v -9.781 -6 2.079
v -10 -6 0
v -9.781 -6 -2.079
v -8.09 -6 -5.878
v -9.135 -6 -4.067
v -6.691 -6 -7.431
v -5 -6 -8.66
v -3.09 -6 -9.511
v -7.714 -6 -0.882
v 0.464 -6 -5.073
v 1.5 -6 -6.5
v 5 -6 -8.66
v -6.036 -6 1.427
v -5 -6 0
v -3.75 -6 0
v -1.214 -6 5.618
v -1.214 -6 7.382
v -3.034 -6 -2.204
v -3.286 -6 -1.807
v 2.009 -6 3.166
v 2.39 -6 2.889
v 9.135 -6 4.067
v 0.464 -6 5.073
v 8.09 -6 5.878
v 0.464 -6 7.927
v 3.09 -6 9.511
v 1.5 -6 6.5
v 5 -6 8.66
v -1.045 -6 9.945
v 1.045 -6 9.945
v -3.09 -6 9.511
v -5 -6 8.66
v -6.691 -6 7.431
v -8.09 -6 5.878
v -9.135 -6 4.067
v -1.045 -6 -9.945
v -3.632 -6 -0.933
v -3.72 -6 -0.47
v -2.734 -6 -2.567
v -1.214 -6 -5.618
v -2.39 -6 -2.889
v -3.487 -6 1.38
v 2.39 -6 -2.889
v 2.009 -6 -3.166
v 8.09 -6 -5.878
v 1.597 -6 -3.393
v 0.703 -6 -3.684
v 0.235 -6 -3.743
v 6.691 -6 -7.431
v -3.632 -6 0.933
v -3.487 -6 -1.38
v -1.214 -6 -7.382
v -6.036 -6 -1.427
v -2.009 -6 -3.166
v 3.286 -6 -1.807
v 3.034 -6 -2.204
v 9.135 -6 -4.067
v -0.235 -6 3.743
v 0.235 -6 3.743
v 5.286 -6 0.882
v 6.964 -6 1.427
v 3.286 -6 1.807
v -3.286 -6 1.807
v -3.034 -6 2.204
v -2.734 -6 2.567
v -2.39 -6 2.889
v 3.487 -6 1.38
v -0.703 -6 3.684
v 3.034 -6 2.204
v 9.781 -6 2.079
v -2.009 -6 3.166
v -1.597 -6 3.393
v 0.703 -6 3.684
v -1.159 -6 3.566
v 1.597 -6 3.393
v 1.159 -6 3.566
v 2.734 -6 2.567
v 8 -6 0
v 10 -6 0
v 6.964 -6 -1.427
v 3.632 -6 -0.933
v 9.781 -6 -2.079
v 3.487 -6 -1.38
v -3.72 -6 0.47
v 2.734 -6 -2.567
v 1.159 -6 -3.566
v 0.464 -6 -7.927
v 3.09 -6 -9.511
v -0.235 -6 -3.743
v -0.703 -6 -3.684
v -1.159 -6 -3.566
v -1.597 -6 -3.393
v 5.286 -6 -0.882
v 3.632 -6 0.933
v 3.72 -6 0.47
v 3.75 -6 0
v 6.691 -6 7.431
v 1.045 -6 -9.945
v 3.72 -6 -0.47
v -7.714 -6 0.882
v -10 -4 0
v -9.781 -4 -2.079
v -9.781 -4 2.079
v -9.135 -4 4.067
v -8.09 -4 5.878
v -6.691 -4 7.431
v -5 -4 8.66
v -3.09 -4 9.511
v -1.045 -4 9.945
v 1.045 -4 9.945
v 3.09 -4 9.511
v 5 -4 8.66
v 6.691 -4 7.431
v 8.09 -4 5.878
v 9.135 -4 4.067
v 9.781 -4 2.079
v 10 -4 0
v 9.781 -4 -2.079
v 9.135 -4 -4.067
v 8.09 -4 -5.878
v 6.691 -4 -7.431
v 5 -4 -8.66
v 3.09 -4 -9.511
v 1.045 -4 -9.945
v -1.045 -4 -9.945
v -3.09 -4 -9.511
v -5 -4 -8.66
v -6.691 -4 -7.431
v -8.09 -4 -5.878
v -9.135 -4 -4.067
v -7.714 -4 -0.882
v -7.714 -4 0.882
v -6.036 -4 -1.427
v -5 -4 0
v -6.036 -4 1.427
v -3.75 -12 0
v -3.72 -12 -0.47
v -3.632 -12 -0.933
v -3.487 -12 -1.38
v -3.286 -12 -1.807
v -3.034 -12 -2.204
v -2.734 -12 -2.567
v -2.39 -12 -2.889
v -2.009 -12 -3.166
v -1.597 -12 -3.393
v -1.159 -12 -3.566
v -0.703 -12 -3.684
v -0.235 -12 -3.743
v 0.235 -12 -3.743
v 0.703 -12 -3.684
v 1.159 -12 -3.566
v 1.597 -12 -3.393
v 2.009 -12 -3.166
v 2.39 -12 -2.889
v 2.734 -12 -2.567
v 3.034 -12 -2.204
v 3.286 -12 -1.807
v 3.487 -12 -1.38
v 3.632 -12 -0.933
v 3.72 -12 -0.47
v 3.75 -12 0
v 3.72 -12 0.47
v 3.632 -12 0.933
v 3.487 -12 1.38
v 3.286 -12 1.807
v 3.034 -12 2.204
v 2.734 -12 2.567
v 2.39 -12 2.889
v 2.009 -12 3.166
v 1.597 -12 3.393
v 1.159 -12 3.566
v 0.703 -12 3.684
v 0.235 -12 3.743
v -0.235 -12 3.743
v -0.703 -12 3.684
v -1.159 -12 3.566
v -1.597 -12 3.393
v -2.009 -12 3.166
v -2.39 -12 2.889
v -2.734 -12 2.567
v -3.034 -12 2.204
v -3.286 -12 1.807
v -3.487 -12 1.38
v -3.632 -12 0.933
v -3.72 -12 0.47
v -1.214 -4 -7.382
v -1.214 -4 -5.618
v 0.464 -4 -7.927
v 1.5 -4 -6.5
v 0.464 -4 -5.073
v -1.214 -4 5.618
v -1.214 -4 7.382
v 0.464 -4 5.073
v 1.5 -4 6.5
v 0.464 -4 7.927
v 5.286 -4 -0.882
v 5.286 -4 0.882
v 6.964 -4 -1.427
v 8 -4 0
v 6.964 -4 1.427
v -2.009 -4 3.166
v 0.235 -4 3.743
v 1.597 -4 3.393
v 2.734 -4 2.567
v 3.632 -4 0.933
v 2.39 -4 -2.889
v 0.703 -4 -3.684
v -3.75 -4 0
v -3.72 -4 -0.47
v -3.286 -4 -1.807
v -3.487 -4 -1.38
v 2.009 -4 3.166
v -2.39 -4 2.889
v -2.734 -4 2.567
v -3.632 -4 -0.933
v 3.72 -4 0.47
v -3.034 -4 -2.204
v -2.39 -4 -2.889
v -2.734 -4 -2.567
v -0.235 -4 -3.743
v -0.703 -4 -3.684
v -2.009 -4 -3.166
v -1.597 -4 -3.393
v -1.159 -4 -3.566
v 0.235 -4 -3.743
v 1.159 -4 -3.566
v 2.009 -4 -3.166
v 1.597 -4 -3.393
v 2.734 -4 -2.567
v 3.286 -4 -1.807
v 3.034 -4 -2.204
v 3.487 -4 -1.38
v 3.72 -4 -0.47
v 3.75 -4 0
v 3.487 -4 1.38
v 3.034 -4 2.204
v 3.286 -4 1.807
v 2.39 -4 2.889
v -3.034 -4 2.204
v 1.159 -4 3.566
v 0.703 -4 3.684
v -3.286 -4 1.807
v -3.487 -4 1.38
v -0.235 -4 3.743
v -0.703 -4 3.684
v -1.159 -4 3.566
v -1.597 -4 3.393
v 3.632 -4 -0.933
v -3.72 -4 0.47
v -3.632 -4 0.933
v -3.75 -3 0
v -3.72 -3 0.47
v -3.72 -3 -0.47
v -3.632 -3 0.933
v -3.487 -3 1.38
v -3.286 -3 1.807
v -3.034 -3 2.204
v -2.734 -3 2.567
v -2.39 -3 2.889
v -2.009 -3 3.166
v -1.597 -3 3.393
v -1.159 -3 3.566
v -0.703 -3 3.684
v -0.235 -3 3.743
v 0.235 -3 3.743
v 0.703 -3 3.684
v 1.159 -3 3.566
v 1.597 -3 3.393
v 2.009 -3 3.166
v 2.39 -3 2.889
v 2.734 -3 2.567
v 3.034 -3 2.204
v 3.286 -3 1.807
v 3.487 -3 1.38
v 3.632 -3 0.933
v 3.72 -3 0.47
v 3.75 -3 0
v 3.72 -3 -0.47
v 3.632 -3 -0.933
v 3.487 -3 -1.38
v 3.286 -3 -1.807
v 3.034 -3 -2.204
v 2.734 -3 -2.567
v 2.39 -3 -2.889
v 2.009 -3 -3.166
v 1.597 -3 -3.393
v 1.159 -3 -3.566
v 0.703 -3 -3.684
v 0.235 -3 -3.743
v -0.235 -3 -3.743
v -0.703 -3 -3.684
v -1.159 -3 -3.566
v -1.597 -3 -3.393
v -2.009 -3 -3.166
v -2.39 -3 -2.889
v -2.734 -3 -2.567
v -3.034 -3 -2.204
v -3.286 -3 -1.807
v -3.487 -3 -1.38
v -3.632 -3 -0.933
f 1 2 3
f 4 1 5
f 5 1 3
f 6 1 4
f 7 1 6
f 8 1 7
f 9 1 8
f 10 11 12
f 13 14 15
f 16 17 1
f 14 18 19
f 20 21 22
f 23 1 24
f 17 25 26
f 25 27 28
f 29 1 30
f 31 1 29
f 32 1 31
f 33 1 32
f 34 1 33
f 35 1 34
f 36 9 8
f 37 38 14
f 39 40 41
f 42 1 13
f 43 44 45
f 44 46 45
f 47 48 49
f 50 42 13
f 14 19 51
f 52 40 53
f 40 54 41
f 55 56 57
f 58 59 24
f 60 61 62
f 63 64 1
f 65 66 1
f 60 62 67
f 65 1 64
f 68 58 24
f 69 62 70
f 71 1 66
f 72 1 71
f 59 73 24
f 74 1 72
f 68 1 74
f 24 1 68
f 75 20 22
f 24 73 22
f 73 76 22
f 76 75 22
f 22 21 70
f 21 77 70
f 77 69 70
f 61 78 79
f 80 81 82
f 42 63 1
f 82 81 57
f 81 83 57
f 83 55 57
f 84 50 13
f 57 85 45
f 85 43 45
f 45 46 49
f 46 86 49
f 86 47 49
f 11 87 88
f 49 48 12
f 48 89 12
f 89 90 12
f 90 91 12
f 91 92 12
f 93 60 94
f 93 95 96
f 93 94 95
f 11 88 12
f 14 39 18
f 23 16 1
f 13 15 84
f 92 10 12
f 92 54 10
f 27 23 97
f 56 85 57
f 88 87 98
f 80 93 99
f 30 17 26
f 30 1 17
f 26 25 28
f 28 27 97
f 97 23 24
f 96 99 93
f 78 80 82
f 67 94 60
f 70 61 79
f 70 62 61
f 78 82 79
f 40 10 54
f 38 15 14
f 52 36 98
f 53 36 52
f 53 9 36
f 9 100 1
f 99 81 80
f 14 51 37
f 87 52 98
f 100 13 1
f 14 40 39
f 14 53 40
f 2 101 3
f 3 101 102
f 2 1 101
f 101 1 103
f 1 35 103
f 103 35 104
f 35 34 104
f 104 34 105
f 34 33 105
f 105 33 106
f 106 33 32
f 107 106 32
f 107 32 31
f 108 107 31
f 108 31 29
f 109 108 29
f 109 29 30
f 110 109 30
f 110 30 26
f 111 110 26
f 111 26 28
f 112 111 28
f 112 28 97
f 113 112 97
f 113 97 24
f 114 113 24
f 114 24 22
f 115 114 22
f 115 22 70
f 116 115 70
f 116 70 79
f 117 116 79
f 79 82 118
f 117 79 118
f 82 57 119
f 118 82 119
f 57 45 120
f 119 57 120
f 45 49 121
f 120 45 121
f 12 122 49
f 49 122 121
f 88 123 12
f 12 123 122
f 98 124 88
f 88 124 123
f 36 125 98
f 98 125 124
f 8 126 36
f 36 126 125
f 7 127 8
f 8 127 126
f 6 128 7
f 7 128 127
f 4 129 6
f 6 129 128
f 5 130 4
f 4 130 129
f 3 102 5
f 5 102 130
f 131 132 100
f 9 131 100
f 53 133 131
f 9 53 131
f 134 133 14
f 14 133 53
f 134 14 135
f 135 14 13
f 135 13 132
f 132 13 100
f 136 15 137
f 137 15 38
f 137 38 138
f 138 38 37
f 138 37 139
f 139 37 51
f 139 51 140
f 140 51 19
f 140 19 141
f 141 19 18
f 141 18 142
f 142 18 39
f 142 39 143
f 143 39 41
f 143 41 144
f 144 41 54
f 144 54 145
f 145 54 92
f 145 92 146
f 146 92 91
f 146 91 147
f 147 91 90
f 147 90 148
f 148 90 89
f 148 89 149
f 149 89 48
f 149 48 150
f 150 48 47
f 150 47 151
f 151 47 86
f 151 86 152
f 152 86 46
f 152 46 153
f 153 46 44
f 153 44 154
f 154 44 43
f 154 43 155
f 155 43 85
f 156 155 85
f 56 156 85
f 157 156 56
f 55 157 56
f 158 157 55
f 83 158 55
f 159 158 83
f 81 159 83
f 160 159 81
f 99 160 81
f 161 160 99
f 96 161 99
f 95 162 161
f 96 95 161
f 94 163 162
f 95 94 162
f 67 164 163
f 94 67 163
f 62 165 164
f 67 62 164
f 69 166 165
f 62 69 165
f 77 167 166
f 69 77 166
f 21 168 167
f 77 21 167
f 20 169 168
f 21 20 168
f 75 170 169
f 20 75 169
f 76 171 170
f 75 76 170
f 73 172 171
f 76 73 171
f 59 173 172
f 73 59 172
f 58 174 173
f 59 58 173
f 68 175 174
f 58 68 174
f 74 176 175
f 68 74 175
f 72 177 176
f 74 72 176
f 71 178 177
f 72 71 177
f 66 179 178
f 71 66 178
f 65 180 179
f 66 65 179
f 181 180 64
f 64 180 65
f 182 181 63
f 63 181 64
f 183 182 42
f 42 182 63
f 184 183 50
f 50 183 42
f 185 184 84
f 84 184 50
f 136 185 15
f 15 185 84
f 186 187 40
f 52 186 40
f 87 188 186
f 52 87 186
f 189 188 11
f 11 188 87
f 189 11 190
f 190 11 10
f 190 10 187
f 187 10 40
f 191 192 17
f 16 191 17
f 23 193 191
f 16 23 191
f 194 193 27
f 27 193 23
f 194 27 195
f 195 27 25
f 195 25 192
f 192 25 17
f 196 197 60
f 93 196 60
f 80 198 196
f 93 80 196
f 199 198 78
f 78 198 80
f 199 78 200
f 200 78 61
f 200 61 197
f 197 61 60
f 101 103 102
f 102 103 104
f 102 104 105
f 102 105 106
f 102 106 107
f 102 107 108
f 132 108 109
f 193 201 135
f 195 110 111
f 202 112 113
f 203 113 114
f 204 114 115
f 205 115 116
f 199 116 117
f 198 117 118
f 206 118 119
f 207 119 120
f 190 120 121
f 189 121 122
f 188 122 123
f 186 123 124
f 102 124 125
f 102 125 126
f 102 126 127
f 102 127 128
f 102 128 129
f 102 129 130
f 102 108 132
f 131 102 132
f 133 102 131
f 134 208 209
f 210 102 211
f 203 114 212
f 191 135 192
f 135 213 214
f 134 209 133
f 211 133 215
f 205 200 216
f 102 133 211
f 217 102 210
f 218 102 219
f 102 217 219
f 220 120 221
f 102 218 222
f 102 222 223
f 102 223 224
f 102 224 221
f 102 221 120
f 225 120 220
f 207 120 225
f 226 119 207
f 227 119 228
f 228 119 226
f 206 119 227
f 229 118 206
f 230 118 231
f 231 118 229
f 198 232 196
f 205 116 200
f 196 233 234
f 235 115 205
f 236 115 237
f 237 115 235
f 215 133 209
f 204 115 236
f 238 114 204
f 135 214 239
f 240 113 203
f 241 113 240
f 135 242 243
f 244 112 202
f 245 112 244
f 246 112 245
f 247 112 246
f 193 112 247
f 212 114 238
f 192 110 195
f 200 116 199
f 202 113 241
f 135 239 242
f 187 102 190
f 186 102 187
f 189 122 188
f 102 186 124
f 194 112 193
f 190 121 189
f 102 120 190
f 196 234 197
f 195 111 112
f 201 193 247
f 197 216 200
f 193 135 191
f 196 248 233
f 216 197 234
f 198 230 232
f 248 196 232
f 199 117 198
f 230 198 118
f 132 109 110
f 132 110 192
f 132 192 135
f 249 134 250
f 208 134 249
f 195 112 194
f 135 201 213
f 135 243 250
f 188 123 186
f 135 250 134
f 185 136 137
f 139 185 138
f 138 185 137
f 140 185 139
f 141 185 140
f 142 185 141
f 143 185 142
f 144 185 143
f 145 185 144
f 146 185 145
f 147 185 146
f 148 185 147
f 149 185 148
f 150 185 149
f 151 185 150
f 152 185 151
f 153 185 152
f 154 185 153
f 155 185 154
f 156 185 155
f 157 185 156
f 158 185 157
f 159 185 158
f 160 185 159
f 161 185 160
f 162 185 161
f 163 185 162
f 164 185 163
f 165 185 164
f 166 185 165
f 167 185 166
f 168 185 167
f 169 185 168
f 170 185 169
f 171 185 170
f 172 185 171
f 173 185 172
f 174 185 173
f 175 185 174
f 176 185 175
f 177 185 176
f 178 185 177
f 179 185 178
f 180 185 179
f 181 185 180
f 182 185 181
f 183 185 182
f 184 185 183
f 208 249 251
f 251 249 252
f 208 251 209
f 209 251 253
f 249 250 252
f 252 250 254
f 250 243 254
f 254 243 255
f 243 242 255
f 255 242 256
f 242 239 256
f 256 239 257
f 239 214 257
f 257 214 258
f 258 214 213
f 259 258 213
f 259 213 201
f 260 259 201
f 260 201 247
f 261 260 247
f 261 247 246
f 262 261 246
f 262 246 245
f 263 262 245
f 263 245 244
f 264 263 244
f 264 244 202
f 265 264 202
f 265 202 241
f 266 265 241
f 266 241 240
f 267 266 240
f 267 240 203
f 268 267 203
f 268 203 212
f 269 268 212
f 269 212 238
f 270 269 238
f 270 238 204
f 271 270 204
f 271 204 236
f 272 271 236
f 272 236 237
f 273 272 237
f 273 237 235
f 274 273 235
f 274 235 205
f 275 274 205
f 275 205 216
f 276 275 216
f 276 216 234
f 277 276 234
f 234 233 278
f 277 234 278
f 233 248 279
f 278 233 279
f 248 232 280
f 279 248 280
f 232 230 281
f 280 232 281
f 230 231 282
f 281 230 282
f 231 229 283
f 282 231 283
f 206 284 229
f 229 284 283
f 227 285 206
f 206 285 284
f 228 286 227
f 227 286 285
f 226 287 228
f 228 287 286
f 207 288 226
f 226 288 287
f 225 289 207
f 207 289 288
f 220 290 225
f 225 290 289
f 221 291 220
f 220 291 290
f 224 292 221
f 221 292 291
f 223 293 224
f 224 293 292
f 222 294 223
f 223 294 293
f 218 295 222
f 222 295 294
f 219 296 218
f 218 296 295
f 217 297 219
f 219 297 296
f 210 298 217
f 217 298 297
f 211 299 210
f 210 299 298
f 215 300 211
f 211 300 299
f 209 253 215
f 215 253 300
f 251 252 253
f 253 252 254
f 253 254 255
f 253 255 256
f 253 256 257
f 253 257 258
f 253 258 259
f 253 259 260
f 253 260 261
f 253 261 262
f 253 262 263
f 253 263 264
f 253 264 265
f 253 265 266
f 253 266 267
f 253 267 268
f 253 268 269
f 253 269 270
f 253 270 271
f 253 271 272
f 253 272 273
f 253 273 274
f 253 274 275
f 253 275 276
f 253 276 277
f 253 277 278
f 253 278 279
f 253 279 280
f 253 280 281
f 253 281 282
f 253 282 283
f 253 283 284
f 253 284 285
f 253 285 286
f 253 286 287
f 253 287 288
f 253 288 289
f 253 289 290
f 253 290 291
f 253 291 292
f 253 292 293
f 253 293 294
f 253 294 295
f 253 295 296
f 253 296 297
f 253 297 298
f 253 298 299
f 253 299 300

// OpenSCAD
module centerHubBack(){
		//centerHubBack
	difference(){
		union(){
			translate([0,-5,0]) rotate ([90,0,0]) cylinder(r=10,h=2,center=true);
			translate([0,-7.5,0]) rotate ([90,0,0]) cylinder(r=3.75,h=9,$fn=50,center=true);
		}
		//screwHoles
		translate([0,-5,6.5]) rotate ([90,0,0]) cylinder(r=1.5,h=5,center=true);
		translate([0,-5,-6.5]) rotate ([90,0,0]) cylinder(r=1.5,h=5,center=true);
		translate([-6.5,-5,0]) rotate ([90,0,0]) cylinder(r=1.5,h=5,center=true);
		translate([6.5,-5,0]) rotate ([90,0,0]) cylinder(r=1.5,h=5,center=true);
	}
}

centerHubBack();
